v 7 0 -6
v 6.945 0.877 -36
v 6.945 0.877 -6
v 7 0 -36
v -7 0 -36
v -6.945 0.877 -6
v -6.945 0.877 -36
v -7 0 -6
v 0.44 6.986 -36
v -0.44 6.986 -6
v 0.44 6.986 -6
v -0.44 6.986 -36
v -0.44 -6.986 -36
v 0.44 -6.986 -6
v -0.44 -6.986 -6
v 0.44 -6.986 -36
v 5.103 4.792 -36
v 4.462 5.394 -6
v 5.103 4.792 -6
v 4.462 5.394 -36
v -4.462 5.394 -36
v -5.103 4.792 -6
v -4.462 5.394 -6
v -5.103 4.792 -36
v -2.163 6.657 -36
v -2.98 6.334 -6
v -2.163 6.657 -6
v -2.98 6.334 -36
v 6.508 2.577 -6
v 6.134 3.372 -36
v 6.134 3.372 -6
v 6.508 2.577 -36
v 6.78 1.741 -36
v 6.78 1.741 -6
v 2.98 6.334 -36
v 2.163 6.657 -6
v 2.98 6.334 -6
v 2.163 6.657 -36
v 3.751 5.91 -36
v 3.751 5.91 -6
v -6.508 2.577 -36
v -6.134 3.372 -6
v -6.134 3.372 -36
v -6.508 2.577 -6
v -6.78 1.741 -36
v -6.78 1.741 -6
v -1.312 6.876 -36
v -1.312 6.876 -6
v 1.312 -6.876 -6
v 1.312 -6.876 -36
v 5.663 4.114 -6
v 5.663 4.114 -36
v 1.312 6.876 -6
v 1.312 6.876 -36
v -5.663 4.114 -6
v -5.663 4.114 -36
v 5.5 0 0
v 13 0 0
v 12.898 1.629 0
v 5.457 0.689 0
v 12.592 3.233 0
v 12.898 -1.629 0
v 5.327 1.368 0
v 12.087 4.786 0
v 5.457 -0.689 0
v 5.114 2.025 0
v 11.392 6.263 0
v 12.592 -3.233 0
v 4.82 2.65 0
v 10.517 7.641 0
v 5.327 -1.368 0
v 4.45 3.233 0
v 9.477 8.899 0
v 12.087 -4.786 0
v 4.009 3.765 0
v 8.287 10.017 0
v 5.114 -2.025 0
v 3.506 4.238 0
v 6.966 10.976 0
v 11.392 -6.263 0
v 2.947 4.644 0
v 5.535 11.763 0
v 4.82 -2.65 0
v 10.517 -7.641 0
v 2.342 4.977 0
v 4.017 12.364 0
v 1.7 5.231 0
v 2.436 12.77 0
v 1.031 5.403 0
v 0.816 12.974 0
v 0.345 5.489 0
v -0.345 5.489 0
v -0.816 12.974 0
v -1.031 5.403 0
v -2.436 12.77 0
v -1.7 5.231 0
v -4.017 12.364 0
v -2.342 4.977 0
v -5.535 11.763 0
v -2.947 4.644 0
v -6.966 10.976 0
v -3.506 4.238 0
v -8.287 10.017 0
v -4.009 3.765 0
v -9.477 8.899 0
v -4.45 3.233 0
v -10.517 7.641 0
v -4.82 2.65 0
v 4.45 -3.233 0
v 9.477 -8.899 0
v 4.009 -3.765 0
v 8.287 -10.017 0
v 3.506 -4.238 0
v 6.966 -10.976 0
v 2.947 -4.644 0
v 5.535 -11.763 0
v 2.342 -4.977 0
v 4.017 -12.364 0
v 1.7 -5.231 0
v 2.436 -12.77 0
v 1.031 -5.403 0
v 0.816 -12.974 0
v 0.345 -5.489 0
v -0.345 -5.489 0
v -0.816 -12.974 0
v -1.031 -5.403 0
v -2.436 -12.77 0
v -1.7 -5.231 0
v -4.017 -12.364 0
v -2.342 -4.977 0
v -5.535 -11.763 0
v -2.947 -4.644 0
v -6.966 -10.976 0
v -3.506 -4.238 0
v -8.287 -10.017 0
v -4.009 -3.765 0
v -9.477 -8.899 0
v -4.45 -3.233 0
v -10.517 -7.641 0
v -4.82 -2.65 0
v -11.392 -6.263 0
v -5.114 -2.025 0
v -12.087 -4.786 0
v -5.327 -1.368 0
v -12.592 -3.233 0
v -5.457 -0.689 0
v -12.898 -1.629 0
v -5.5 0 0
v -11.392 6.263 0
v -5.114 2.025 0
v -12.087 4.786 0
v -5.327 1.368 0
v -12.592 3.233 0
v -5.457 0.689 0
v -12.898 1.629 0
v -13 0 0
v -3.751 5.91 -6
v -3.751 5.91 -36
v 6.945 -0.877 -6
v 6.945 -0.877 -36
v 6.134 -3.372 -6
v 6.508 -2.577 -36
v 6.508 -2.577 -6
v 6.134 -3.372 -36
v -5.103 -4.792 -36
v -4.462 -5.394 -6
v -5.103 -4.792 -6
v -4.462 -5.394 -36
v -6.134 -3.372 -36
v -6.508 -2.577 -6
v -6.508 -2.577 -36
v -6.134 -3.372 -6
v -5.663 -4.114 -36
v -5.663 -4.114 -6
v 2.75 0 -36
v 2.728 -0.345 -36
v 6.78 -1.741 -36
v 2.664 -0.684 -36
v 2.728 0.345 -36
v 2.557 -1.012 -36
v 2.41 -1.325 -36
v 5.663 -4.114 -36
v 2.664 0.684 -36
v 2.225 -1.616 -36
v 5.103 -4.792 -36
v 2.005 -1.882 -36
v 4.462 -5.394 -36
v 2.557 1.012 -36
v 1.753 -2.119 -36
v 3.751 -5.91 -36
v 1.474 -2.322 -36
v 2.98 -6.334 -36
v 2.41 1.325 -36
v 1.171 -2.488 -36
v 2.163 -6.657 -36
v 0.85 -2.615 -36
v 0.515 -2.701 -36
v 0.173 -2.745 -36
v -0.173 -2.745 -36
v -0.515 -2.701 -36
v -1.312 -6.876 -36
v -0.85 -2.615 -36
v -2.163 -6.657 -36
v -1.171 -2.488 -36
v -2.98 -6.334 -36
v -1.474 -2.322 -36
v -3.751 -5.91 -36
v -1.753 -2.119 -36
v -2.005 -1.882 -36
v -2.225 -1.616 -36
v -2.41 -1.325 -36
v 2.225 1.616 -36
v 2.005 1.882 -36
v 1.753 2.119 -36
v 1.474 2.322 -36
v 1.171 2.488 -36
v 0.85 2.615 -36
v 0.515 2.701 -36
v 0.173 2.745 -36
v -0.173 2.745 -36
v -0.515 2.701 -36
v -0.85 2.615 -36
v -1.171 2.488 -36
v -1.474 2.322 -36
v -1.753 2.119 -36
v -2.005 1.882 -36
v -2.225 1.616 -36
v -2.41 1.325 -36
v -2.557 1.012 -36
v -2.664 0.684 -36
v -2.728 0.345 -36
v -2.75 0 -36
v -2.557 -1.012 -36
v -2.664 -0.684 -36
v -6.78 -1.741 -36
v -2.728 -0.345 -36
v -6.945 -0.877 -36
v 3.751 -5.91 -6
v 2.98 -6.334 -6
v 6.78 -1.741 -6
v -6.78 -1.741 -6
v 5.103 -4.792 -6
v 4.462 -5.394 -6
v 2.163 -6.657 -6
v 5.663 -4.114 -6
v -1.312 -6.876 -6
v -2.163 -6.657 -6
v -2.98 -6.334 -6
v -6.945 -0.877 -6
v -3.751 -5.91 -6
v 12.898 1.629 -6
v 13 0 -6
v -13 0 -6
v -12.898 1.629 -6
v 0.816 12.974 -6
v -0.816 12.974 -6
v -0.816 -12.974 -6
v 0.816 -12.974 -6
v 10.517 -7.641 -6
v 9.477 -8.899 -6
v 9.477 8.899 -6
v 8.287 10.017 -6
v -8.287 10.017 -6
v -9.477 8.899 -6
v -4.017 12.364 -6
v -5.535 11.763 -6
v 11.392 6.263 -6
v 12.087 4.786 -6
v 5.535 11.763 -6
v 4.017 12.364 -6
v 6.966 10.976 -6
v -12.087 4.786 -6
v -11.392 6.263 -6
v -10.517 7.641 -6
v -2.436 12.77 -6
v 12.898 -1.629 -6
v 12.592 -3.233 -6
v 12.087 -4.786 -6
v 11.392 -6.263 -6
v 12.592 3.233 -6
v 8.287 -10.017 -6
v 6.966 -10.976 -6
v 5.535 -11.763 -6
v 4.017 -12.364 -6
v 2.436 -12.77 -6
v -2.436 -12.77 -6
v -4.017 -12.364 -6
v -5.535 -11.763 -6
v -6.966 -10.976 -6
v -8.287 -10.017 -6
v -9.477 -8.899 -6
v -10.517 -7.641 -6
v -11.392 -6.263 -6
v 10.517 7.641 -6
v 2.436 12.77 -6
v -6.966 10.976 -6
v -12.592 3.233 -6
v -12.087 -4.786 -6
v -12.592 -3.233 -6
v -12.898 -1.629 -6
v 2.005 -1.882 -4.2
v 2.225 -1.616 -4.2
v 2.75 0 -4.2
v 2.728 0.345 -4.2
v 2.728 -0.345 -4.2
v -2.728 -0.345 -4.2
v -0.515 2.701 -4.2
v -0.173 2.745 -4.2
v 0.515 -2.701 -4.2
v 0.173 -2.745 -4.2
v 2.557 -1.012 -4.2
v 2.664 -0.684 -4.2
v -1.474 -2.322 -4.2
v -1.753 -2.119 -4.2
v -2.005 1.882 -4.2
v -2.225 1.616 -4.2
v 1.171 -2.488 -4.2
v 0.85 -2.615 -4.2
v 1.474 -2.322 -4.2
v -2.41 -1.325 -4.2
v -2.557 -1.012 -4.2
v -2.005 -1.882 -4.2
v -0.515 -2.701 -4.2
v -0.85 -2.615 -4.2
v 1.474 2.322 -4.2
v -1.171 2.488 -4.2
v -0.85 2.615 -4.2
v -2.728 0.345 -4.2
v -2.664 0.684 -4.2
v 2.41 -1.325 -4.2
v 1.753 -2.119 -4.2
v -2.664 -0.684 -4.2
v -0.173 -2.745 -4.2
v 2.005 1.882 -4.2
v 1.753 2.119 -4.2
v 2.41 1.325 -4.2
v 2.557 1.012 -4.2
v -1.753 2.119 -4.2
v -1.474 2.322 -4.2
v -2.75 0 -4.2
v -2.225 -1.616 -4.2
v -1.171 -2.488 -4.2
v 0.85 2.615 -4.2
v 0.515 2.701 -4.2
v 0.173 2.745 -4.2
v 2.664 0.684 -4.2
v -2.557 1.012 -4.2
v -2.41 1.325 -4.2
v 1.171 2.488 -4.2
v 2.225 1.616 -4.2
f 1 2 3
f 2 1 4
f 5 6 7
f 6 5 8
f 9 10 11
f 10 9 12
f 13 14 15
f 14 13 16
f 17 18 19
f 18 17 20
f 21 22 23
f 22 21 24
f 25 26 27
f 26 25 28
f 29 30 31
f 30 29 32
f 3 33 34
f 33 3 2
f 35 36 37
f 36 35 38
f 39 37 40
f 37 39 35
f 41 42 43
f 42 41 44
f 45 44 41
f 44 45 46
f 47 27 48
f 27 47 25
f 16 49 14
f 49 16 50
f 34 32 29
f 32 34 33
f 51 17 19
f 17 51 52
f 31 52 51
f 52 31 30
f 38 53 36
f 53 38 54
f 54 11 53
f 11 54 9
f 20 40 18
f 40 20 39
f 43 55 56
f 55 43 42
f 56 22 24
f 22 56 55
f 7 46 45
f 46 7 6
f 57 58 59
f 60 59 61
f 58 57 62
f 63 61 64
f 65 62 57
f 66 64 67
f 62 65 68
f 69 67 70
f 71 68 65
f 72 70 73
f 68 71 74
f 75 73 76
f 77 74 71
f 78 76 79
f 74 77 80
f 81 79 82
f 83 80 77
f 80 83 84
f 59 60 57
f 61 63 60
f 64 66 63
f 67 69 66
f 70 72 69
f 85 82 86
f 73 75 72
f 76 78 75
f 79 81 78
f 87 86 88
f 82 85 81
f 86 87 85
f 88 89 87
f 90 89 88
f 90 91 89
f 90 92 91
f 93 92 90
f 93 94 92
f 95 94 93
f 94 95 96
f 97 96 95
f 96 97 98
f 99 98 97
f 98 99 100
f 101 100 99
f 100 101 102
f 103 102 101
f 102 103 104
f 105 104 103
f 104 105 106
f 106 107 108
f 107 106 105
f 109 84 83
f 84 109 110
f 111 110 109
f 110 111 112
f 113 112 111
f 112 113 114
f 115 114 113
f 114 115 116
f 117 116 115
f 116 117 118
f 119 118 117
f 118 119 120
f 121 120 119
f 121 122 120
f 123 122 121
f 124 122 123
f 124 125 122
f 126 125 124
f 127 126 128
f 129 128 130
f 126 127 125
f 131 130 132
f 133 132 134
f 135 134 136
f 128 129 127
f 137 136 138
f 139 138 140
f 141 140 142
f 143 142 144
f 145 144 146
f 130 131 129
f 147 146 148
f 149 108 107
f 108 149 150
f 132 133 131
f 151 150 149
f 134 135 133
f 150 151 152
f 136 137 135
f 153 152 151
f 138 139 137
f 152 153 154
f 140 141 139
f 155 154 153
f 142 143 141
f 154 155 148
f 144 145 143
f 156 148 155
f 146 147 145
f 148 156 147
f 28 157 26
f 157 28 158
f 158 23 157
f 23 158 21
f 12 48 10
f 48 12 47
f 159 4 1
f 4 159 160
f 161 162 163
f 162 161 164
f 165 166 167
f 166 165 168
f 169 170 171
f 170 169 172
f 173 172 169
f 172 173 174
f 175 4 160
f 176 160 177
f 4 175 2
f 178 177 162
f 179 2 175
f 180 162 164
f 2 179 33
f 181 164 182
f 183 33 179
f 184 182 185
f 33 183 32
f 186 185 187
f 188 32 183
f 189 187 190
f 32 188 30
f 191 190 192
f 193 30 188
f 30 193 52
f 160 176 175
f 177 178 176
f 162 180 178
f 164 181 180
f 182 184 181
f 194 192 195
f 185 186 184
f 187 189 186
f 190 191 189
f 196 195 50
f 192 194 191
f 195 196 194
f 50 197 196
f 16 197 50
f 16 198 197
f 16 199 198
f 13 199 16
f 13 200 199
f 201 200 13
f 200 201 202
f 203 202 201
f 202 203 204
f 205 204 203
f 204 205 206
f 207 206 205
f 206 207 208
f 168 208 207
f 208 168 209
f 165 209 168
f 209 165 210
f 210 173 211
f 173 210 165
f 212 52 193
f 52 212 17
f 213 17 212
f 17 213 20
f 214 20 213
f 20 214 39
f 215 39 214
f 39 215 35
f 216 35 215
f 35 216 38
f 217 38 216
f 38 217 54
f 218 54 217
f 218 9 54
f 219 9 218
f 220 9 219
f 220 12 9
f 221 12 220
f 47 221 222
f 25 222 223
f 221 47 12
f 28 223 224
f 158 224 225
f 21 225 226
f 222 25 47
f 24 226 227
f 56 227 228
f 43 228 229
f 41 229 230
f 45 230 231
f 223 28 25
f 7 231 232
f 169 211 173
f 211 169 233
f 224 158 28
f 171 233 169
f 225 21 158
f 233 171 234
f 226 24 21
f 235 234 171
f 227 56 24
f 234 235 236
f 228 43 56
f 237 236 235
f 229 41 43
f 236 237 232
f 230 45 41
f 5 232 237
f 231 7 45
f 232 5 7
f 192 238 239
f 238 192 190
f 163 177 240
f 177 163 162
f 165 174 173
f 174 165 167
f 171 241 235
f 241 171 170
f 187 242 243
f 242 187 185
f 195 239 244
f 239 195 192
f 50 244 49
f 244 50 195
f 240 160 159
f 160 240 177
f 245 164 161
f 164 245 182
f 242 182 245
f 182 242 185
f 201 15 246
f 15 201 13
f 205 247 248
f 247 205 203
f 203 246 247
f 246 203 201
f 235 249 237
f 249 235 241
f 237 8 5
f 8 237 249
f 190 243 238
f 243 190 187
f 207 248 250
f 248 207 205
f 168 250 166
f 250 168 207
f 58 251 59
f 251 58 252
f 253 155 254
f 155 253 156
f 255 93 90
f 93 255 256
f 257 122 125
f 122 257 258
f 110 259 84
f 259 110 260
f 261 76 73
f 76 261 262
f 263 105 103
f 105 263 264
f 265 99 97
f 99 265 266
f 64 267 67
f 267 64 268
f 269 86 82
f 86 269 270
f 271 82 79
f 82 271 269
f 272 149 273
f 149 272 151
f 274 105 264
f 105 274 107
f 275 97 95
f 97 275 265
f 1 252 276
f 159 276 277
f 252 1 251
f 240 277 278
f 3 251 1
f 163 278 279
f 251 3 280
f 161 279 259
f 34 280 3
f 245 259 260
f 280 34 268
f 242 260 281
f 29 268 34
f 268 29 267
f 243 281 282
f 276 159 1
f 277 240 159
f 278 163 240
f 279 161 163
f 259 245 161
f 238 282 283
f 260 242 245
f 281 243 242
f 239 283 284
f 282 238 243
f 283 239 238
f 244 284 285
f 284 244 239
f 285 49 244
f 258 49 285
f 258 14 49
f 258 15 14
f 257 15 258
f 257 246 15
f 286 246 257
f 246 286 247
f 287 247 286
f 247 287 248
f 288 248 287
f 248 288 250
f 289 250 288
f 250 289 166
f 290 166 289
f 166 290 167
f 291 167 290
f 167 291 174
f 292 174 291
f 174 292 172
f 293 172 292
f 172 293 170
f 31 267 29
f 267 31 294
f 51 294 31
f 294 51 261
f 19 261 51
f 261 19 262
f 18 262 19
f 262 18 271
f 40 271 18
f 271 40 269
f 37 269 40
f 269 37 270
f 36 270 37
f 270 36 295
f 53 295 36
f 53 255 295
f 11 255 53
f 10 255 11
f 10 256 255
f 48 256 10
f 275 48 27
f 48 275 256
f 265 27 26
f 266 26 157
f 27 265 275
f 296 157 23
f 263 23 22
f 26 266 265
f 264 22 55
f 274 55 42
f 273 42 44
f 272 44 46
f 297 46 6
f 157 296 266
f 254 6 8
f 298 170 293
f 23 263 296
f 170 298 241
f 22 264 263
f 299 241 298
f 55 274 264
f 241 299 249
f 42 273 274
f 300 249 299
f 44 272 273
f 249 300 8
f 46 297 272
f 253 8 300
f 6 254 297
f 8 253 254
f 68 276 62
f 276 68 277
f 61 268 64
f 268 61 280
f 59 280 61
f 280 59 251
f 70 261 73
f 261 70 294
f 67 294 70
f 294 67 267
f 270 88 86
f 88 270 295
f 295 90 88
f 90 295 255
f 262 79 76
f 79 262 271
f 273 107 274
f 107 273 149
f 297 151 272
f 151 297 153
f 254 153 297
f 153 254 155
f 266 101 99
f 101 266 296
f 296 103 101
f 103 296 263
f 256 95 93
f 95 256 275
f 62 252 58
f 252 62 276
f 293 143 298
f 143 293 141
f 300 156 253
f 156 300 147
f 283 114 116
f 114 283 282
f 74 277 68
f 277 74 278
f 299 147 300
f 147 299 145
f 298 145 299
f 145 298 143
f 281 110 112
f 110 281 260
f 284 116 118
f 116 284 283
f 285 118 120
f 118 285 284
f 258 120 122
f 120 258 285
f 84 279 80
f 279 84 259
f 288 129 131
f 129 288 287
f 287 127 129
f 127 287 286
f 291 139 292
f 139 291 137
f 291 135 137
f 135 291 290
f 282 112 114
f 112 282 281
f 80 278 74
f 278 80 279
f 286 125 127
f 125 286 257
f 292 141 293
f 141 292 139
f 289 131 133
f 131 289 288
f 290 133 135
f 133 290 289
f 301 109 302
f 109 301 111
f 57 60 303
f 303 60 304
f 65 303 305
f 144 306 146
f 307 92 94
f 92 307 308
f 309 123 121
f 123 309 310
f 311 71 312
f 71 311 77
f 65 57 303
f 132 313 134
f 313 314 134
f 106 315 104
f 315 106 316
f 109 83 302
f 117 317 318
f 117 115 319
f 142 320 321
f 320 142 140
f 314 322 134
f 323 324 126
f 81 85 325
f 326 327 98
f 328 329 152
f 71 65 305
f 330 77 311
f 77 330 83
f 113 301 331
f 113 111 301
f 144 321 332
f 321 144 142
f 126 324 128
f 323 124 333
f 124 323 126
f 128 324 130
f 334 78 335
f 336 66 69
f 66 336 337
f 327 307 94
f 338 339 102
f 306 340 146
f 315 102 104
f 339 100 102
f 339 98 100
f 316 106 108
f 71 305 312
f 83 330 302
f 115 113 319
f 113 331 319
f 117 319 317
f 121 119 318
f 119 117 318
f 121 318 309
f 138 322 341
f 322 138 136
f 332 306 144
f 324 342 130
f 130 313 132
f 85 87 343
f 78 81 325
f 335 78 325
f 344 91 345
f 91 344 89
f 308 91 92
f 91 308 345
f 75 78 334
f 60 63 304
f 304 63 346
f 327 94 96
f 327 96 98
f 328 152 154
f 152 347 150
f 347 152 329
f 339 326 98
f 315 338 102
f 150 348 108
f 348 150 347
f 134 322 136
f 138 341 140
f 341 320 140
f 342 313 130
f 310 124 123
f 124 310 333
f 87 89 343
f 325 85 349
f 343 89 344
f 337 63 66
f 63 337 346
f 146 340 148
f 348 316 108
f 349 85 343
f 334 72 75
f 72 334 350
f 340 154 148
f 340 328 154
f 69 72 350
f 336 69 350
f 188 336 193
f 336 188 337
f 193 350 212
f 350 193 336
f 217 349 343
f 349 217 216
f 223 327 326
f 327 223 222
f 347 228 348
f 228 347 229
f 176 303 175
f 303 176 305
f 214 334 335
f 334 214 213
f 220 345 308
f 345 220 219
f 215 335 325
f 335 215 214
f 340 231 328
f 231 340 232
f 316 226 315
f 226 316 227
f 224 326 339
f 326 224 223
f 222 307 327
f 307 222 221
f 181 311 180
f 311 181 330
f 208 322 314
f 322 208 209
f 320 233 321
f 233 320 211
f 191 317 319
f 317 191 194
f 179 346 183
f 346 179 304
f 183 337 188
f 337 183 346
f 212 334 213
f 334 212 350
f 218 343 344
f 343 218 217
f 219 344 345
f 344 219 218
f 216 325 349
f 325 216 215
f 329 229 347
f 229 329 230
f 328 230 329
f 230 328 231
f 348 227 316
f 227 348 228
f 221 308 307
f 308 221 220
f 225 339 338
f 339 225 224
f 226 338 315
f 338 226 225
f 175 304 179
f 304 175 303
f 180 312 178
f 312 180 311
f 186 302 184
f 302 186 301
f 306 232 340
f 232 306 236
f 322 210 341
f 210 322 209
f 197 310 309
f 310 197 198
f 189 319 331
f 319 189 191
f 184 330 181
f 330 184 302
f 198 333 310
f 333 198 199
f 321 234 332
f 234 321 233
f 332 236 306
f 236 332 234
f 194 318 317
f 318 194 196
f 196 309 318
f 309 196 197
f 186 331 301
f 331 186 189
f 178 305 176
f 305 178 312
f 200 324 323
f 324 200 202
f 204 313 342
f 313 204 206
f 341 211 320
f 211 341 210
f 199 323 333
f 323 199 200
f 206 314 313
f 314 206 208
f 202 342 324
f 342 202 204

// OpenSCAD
$fn = 50;


difference() {
	union() {
		translate(v = [0, 0, -36.0000000000]) {
			cylinder(h = 36, r = 7.0000000000);
		}
		translate(v = [0, 0, -6.0000000000]) {
			cylinder(h = 6, r = 13.0000000000);
		}
	}
	union() {
		translate(v = [0, 0, 0]) {
			rotate(a = [0, 0, 0]) {
				difference() {
					union() {
						#translate(v = [0, 0, -36.0000000000]) {
							cylinder(h = 36, r = 2.2500000000);
						}
						#translate(v = [0, 0, -4.2000000000]) {
							cylinder(h = 4.2000000000, r1 = 2.7500000000, r2 = 5.5000000000);
						}
						#translate(v = [0, 0, -36.0000000000]) {
							cylinder(h = 36, r = 2.7500000000);
						}
						#translate(v = [0, 0, -36.0000000000]) {
							cylinder(h = 36, r = 2.2500000000);
						}
					}
					union();
				}
			}
		}
	}
}
